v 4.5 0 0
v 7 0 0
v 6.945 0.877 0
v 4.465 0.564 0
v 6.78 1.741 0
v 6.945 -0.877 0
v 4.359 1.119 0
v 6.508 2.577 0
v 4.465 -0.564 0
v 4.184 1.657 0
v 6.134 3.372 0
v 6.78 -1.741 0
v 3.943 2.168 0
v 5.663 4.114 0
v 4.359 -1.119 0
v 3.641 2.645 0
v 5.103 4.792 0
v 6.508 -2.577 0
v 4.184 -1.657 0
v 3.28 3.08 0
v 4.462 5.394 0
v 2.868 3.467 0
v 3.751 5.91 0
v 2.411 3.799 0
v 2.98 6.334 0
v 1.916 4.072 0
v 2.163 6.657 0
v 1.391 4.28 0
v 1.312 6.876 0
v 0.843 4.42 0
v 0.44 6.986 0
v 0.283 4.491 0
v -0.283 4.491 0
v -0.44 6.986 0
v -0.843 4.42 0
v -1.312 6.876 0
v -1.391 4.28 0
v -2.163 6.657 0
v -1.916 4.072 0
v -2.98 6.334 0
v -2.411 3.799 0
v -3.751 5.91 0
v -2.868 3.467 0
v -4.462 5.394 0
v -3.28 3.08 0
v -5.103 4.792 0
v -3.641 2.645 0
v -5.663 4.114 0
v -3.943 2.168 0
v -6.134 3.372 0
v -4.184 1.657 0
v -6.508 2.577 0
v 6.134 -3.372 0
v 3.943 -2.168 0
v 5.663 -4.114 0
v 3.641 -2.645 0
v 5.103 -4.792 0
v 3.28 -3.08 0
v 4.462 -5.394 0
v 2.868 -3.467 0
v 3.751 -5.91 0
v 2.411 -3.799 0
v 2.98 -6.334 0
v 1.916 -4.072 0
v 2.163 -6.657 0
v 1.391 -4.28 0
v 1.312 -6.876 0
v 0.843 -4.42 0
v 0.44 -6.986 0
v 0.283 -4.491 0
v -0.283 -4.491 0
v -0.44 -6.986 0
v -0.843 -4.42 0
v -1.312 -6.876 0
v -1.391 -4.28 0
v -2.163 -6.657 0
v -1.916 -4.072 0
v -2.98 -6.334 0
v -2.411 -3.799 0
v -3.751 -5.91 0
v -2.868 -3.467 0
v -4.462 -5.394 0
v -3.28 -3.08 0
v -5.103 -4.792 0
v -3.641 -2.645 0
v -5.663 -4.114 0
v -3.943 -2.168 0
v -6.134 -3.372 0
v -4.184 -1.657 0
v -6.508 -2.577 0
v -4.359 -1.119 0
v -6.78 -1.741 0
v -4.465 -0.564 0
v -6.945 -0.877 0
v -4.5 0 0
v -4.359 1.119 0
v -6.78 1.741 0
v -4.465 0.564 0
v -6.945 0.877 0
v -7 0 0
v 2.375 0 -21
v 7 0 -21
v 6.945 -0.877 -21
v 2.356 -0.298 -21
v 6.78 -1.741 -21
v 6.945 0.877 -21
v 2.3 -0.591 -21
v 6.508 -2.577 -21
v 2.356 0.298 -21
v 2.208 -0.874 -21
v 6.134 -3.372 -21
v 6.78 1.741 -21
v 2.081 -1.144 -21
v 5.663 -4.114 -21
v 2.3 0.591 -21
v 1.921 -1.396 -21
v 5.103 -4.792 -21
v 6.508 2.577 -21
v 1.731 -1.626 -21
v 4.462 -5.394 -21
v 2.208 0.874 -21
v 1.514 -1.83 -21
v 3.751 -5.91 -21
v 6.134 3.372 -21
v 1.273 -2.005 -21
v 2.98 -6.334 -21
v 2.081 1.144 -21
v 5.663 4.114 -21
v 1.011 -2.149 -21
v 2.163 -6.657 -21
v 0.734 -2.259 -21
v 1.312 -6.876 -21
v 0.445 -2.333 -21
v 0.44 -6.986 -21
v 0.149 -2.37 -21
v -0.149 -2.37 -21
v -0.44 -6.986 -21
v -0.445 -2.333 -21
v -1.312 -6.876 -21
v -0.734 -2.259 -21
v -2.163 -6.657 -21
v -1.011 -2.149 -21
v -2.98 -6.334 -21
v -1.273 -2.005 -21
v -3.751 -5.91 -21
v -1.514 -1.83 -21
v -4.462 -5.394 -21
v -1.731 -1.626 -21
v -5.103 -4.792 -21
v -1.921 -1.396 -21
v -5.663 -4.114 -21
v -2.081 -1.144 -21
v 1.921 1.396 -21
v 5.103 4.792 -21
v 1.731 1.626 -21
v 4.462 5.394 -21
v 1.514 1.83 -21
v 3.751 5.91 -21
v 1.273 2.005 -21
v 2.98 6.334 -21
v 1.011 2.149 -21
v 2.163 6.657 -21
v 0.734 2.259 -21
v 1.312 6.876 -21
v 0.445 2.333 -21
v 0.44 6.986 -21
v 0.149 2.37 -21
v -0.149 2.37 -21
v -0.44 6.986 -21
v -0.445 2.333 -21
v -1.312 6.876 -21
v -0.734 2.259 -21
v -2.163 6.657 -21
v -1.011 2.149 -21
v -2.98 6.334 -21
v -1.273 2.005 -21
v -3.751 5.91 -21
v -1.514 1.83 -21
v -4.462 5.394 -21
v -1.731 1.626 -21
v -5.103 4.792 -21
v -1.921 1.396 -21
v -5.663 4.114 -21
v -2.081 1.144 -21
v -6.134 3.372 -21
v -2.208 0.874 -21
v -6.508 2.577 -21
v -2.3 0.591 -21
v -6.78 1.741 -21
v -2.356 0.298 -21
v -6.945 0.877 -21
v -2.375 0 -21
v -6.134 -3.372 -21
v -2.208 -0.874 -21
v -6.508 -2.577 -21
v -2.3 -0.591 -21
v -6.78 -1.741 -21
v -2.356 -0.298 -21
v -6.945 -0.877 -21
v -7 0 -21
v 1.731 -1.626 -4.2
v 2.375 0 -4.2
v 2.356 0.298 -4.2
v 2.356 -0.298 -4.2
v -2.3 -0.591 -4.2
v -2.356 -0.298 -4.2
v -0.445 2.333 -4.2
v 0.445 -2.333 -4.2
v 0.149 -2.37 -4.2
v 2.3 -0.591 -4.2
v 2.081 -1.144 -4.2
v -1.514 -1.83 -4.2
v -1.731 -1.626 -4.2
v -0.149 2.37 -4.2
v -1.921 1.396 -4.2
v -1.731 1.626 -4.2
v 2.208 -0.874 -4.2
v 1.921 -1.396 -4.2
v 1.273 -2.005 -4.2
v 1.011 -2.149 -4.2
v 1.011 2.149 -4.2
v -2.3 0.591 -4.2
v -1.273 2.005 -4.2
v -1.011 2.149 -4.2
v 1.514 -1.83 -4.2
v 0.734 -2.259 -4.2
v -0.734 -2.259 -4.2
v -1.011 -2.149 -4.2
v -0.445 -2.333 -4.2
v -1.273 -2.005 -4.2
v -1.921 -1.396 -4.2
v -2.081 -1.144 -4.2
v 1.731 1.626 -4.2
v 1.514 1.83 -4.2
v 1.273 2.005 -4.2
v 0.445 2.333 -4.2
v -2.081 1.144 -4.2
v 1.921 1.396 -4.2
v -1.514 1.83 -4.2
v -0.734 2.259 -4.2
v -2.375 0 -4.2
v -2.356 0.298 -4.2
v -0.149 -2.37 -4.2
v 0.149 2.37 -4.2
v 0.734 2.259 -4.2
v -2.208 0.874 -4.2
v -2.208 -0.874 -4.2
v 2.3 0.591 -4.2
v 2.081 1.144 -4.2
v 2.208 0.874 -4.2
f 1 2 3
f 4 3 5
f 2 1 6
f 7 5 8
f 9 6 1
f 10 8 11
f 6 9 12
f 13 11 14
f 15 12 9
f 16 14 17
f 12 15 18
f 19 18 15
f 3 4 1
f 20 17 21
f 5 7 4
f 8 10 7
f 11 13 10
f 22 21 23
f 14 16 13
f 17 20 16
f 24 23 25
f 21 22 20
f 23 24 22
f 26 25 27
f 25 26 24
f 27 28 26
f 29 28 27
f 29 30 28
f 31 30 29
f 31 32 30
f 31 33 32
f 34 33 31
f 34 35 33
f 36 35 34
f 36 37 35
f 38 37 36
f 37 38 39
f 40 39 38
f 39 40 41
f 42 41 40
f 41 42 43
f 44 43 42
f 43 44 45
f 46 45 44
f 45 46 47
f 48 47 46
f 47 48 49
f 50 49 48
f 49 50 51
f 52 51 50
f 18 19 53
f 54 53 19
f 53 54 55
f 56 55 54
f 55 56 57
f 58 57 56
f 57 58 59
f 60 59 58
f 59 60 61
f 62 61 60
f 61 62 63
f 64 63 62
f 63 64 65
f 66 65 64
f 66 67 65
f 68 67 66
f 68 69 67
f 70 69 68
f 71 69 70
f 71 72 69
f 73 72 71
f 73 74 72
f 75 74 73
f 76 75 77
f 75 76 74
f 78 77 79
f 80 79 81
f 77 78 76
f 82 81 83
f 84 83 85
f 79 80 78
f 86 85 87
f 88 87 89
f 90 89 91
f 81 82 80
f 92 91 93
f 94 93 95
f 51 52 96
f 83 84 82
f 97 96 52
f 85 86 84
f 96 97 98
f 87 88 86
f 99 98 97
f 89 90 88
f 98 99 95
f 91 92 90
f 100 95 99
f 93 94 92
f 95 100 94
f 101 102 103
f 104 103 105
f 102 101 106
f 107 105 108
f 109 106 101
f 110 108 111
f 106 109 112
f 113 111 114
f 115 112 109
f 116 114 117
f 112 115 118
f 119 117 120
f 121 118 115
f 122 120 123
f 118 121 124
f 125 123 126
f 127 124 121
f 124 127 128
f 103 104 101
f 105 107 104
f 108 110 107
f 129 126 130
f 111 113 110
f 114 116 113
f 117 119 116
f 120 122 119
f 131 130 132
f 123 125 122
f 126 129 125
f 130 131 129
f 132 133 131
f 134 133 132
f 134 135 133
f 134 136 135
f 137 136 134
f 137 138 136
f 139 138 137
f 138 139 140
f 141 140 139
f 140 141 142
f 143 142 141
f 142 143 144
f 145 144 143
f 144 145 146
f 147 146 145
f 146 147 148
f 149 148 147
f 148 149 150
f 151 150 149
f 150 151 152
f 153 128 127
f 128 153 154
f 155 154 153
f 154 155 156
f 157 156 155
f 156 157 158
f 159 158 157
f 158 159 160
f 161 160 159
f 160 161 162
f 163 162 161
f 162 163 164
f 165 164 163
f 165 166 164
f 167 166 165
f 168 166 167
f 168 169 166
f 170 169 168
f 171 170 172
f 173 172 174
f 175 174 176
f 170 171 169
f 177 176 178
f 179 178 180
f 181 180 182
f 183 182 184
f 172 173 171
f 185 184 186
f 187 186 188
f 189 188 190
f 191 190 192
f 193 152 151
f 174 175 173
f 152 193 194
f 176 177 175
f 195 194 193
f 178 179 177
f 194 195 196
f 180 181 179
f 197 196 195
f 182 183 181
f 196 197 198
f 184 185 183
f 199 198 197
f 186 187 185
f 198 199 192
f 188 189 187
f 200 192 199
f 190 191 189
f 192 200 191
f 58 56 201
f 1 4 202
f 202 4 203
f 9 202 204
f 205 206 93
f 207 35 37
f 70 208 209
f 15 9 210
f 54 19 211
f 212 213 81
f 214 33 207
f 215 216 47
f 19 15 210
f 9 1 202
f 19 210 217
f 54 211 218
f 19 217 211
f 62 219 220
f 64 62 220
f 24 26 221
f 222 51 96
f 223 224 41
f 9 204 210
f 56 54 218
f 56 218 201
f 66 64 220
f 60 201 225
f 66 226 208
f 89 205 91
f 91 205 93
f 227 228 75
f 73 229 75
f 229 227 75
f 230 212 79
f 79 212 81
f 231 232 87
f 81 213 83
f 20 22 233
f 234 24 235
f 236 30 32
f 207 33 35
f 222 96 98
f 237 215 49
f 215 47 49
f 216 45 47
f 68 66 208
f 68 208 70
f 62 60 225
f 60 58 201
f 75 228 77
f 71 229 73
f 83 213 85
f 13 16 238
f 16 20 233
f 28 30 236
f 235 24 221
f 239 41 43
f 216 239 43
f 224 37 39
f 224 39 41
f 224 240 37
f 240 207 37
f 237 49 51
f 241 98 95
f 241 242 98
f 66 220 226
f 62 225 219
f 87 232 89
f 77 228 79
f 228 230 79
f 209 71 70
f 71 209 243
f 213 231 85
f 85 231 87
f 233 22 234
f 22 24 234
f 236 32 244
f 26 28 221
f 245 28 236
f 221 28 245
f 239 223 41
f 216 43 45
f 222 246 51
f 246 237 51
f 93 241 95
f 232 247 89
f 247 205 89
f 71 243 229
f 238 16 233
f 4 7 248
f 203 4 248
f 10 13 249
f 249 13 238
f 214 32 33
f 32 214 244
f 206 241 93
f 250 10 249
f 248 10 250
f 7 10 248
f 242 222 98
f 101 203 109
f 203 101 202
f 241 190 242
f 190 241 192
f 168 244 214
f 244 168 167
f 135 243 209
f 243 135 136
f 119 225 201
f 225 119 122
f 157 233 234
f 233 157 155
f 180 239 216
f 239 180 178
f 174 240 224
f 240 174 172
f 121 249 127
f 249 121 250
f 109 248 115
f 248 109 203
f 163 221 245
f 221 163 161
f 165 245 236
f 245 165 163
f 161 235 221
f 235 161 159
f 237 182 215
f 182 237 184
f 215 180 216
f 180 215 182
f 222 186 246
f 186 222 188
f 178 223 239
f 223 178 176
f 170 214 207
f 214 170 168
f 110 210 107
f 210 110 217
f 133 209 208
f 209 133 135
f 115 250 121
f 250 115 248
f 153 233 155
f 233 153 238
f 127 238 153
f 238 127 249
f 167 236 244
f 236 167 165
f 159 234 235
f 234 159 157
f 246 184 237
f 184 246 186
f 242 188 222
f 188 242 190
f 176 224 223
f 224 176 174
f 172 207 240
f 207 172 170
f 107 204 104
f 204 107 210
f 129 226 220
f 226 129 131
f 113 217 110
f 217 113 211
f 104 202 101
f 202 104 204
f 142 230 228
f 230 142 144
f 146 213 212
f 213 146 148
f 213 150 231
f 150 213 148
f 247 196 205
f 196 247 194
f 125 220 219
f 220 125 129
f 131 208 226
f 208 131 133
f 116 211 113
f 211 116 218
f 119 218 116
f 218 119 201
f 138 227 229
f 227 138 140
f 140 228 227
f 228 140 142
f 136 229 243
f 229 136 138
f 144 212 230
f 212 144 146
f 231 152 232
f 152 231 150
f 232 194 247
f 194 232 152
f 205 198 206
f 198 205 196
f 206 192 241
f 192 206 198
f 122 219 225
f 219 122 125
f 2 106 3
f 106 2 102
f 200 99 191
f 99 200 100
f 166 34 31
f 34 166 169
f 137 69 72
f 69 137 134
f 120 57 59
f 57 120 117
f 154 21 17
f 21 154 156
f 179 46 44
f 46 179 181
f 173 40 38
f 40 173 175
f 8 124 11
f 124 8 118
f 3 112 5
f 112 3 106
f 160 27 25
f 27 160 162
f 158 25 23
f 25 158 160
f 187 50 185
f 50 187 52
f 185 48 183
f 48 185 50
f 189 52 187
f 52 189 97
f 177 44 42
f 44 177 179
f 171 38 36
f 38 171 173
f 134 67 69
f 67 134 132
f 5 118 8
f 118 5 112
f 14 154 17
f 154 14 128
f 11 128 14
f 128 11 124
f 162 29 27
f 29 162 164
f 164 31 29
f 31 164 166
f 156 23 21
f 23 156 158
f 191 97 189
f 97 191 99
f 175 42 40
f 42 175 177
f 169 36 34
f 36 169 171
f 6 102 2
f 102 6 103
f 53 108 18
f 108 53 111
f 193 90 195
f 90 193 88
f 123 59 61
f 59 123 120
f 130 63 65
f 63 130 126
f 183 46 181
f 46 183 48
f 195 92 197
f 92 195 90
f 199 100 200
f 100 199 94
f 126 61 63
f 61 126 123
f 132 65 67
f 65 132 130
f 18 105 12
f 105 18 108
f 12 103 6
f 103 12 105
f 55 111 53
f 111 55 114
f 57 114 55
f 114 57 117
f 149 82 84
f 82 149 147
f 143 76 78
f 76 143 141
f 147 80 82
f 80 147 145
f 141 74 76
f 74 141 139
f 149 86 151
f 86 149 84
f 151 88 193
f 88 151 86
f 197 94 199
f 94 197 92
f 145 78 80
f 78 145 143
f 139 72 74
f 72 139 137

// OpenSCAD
$fn = 50;


difference() {
	union() {
		translate(v = [0, 0, -21.0000000000]) {
			cylinder(h = 21, r = 7.0000000000);
		}
		cylinder(h = 0, r = 17.0000000000);
	}
	union() {
		translate(v = [0, 0, 0]) {
			rotate(a = [0, 0, 0]) {
				difference() {
					union() {
						#translate(v = [0, 0, -21.0000000000]) {
							cylinder(h = 21, r = 2.2500000000);
						}
						#translate(v = [0, 0, -4.2000000000]) {
							cylinder(h = 4.2000000000, r1 = 2.3750000000, r2 = 4.5000000000);
						}
						#translate(v = [0, 0, -21.0000000000]) {
							cylinder(h = 21, r = 2.3750000000);
						}
						#translate(v = [0, 0, -21.0000000000]) {
							cylinder(h = 21, r = 2.2500000000);
						}
					}
					union();
				}
			}
		}
	}
}
